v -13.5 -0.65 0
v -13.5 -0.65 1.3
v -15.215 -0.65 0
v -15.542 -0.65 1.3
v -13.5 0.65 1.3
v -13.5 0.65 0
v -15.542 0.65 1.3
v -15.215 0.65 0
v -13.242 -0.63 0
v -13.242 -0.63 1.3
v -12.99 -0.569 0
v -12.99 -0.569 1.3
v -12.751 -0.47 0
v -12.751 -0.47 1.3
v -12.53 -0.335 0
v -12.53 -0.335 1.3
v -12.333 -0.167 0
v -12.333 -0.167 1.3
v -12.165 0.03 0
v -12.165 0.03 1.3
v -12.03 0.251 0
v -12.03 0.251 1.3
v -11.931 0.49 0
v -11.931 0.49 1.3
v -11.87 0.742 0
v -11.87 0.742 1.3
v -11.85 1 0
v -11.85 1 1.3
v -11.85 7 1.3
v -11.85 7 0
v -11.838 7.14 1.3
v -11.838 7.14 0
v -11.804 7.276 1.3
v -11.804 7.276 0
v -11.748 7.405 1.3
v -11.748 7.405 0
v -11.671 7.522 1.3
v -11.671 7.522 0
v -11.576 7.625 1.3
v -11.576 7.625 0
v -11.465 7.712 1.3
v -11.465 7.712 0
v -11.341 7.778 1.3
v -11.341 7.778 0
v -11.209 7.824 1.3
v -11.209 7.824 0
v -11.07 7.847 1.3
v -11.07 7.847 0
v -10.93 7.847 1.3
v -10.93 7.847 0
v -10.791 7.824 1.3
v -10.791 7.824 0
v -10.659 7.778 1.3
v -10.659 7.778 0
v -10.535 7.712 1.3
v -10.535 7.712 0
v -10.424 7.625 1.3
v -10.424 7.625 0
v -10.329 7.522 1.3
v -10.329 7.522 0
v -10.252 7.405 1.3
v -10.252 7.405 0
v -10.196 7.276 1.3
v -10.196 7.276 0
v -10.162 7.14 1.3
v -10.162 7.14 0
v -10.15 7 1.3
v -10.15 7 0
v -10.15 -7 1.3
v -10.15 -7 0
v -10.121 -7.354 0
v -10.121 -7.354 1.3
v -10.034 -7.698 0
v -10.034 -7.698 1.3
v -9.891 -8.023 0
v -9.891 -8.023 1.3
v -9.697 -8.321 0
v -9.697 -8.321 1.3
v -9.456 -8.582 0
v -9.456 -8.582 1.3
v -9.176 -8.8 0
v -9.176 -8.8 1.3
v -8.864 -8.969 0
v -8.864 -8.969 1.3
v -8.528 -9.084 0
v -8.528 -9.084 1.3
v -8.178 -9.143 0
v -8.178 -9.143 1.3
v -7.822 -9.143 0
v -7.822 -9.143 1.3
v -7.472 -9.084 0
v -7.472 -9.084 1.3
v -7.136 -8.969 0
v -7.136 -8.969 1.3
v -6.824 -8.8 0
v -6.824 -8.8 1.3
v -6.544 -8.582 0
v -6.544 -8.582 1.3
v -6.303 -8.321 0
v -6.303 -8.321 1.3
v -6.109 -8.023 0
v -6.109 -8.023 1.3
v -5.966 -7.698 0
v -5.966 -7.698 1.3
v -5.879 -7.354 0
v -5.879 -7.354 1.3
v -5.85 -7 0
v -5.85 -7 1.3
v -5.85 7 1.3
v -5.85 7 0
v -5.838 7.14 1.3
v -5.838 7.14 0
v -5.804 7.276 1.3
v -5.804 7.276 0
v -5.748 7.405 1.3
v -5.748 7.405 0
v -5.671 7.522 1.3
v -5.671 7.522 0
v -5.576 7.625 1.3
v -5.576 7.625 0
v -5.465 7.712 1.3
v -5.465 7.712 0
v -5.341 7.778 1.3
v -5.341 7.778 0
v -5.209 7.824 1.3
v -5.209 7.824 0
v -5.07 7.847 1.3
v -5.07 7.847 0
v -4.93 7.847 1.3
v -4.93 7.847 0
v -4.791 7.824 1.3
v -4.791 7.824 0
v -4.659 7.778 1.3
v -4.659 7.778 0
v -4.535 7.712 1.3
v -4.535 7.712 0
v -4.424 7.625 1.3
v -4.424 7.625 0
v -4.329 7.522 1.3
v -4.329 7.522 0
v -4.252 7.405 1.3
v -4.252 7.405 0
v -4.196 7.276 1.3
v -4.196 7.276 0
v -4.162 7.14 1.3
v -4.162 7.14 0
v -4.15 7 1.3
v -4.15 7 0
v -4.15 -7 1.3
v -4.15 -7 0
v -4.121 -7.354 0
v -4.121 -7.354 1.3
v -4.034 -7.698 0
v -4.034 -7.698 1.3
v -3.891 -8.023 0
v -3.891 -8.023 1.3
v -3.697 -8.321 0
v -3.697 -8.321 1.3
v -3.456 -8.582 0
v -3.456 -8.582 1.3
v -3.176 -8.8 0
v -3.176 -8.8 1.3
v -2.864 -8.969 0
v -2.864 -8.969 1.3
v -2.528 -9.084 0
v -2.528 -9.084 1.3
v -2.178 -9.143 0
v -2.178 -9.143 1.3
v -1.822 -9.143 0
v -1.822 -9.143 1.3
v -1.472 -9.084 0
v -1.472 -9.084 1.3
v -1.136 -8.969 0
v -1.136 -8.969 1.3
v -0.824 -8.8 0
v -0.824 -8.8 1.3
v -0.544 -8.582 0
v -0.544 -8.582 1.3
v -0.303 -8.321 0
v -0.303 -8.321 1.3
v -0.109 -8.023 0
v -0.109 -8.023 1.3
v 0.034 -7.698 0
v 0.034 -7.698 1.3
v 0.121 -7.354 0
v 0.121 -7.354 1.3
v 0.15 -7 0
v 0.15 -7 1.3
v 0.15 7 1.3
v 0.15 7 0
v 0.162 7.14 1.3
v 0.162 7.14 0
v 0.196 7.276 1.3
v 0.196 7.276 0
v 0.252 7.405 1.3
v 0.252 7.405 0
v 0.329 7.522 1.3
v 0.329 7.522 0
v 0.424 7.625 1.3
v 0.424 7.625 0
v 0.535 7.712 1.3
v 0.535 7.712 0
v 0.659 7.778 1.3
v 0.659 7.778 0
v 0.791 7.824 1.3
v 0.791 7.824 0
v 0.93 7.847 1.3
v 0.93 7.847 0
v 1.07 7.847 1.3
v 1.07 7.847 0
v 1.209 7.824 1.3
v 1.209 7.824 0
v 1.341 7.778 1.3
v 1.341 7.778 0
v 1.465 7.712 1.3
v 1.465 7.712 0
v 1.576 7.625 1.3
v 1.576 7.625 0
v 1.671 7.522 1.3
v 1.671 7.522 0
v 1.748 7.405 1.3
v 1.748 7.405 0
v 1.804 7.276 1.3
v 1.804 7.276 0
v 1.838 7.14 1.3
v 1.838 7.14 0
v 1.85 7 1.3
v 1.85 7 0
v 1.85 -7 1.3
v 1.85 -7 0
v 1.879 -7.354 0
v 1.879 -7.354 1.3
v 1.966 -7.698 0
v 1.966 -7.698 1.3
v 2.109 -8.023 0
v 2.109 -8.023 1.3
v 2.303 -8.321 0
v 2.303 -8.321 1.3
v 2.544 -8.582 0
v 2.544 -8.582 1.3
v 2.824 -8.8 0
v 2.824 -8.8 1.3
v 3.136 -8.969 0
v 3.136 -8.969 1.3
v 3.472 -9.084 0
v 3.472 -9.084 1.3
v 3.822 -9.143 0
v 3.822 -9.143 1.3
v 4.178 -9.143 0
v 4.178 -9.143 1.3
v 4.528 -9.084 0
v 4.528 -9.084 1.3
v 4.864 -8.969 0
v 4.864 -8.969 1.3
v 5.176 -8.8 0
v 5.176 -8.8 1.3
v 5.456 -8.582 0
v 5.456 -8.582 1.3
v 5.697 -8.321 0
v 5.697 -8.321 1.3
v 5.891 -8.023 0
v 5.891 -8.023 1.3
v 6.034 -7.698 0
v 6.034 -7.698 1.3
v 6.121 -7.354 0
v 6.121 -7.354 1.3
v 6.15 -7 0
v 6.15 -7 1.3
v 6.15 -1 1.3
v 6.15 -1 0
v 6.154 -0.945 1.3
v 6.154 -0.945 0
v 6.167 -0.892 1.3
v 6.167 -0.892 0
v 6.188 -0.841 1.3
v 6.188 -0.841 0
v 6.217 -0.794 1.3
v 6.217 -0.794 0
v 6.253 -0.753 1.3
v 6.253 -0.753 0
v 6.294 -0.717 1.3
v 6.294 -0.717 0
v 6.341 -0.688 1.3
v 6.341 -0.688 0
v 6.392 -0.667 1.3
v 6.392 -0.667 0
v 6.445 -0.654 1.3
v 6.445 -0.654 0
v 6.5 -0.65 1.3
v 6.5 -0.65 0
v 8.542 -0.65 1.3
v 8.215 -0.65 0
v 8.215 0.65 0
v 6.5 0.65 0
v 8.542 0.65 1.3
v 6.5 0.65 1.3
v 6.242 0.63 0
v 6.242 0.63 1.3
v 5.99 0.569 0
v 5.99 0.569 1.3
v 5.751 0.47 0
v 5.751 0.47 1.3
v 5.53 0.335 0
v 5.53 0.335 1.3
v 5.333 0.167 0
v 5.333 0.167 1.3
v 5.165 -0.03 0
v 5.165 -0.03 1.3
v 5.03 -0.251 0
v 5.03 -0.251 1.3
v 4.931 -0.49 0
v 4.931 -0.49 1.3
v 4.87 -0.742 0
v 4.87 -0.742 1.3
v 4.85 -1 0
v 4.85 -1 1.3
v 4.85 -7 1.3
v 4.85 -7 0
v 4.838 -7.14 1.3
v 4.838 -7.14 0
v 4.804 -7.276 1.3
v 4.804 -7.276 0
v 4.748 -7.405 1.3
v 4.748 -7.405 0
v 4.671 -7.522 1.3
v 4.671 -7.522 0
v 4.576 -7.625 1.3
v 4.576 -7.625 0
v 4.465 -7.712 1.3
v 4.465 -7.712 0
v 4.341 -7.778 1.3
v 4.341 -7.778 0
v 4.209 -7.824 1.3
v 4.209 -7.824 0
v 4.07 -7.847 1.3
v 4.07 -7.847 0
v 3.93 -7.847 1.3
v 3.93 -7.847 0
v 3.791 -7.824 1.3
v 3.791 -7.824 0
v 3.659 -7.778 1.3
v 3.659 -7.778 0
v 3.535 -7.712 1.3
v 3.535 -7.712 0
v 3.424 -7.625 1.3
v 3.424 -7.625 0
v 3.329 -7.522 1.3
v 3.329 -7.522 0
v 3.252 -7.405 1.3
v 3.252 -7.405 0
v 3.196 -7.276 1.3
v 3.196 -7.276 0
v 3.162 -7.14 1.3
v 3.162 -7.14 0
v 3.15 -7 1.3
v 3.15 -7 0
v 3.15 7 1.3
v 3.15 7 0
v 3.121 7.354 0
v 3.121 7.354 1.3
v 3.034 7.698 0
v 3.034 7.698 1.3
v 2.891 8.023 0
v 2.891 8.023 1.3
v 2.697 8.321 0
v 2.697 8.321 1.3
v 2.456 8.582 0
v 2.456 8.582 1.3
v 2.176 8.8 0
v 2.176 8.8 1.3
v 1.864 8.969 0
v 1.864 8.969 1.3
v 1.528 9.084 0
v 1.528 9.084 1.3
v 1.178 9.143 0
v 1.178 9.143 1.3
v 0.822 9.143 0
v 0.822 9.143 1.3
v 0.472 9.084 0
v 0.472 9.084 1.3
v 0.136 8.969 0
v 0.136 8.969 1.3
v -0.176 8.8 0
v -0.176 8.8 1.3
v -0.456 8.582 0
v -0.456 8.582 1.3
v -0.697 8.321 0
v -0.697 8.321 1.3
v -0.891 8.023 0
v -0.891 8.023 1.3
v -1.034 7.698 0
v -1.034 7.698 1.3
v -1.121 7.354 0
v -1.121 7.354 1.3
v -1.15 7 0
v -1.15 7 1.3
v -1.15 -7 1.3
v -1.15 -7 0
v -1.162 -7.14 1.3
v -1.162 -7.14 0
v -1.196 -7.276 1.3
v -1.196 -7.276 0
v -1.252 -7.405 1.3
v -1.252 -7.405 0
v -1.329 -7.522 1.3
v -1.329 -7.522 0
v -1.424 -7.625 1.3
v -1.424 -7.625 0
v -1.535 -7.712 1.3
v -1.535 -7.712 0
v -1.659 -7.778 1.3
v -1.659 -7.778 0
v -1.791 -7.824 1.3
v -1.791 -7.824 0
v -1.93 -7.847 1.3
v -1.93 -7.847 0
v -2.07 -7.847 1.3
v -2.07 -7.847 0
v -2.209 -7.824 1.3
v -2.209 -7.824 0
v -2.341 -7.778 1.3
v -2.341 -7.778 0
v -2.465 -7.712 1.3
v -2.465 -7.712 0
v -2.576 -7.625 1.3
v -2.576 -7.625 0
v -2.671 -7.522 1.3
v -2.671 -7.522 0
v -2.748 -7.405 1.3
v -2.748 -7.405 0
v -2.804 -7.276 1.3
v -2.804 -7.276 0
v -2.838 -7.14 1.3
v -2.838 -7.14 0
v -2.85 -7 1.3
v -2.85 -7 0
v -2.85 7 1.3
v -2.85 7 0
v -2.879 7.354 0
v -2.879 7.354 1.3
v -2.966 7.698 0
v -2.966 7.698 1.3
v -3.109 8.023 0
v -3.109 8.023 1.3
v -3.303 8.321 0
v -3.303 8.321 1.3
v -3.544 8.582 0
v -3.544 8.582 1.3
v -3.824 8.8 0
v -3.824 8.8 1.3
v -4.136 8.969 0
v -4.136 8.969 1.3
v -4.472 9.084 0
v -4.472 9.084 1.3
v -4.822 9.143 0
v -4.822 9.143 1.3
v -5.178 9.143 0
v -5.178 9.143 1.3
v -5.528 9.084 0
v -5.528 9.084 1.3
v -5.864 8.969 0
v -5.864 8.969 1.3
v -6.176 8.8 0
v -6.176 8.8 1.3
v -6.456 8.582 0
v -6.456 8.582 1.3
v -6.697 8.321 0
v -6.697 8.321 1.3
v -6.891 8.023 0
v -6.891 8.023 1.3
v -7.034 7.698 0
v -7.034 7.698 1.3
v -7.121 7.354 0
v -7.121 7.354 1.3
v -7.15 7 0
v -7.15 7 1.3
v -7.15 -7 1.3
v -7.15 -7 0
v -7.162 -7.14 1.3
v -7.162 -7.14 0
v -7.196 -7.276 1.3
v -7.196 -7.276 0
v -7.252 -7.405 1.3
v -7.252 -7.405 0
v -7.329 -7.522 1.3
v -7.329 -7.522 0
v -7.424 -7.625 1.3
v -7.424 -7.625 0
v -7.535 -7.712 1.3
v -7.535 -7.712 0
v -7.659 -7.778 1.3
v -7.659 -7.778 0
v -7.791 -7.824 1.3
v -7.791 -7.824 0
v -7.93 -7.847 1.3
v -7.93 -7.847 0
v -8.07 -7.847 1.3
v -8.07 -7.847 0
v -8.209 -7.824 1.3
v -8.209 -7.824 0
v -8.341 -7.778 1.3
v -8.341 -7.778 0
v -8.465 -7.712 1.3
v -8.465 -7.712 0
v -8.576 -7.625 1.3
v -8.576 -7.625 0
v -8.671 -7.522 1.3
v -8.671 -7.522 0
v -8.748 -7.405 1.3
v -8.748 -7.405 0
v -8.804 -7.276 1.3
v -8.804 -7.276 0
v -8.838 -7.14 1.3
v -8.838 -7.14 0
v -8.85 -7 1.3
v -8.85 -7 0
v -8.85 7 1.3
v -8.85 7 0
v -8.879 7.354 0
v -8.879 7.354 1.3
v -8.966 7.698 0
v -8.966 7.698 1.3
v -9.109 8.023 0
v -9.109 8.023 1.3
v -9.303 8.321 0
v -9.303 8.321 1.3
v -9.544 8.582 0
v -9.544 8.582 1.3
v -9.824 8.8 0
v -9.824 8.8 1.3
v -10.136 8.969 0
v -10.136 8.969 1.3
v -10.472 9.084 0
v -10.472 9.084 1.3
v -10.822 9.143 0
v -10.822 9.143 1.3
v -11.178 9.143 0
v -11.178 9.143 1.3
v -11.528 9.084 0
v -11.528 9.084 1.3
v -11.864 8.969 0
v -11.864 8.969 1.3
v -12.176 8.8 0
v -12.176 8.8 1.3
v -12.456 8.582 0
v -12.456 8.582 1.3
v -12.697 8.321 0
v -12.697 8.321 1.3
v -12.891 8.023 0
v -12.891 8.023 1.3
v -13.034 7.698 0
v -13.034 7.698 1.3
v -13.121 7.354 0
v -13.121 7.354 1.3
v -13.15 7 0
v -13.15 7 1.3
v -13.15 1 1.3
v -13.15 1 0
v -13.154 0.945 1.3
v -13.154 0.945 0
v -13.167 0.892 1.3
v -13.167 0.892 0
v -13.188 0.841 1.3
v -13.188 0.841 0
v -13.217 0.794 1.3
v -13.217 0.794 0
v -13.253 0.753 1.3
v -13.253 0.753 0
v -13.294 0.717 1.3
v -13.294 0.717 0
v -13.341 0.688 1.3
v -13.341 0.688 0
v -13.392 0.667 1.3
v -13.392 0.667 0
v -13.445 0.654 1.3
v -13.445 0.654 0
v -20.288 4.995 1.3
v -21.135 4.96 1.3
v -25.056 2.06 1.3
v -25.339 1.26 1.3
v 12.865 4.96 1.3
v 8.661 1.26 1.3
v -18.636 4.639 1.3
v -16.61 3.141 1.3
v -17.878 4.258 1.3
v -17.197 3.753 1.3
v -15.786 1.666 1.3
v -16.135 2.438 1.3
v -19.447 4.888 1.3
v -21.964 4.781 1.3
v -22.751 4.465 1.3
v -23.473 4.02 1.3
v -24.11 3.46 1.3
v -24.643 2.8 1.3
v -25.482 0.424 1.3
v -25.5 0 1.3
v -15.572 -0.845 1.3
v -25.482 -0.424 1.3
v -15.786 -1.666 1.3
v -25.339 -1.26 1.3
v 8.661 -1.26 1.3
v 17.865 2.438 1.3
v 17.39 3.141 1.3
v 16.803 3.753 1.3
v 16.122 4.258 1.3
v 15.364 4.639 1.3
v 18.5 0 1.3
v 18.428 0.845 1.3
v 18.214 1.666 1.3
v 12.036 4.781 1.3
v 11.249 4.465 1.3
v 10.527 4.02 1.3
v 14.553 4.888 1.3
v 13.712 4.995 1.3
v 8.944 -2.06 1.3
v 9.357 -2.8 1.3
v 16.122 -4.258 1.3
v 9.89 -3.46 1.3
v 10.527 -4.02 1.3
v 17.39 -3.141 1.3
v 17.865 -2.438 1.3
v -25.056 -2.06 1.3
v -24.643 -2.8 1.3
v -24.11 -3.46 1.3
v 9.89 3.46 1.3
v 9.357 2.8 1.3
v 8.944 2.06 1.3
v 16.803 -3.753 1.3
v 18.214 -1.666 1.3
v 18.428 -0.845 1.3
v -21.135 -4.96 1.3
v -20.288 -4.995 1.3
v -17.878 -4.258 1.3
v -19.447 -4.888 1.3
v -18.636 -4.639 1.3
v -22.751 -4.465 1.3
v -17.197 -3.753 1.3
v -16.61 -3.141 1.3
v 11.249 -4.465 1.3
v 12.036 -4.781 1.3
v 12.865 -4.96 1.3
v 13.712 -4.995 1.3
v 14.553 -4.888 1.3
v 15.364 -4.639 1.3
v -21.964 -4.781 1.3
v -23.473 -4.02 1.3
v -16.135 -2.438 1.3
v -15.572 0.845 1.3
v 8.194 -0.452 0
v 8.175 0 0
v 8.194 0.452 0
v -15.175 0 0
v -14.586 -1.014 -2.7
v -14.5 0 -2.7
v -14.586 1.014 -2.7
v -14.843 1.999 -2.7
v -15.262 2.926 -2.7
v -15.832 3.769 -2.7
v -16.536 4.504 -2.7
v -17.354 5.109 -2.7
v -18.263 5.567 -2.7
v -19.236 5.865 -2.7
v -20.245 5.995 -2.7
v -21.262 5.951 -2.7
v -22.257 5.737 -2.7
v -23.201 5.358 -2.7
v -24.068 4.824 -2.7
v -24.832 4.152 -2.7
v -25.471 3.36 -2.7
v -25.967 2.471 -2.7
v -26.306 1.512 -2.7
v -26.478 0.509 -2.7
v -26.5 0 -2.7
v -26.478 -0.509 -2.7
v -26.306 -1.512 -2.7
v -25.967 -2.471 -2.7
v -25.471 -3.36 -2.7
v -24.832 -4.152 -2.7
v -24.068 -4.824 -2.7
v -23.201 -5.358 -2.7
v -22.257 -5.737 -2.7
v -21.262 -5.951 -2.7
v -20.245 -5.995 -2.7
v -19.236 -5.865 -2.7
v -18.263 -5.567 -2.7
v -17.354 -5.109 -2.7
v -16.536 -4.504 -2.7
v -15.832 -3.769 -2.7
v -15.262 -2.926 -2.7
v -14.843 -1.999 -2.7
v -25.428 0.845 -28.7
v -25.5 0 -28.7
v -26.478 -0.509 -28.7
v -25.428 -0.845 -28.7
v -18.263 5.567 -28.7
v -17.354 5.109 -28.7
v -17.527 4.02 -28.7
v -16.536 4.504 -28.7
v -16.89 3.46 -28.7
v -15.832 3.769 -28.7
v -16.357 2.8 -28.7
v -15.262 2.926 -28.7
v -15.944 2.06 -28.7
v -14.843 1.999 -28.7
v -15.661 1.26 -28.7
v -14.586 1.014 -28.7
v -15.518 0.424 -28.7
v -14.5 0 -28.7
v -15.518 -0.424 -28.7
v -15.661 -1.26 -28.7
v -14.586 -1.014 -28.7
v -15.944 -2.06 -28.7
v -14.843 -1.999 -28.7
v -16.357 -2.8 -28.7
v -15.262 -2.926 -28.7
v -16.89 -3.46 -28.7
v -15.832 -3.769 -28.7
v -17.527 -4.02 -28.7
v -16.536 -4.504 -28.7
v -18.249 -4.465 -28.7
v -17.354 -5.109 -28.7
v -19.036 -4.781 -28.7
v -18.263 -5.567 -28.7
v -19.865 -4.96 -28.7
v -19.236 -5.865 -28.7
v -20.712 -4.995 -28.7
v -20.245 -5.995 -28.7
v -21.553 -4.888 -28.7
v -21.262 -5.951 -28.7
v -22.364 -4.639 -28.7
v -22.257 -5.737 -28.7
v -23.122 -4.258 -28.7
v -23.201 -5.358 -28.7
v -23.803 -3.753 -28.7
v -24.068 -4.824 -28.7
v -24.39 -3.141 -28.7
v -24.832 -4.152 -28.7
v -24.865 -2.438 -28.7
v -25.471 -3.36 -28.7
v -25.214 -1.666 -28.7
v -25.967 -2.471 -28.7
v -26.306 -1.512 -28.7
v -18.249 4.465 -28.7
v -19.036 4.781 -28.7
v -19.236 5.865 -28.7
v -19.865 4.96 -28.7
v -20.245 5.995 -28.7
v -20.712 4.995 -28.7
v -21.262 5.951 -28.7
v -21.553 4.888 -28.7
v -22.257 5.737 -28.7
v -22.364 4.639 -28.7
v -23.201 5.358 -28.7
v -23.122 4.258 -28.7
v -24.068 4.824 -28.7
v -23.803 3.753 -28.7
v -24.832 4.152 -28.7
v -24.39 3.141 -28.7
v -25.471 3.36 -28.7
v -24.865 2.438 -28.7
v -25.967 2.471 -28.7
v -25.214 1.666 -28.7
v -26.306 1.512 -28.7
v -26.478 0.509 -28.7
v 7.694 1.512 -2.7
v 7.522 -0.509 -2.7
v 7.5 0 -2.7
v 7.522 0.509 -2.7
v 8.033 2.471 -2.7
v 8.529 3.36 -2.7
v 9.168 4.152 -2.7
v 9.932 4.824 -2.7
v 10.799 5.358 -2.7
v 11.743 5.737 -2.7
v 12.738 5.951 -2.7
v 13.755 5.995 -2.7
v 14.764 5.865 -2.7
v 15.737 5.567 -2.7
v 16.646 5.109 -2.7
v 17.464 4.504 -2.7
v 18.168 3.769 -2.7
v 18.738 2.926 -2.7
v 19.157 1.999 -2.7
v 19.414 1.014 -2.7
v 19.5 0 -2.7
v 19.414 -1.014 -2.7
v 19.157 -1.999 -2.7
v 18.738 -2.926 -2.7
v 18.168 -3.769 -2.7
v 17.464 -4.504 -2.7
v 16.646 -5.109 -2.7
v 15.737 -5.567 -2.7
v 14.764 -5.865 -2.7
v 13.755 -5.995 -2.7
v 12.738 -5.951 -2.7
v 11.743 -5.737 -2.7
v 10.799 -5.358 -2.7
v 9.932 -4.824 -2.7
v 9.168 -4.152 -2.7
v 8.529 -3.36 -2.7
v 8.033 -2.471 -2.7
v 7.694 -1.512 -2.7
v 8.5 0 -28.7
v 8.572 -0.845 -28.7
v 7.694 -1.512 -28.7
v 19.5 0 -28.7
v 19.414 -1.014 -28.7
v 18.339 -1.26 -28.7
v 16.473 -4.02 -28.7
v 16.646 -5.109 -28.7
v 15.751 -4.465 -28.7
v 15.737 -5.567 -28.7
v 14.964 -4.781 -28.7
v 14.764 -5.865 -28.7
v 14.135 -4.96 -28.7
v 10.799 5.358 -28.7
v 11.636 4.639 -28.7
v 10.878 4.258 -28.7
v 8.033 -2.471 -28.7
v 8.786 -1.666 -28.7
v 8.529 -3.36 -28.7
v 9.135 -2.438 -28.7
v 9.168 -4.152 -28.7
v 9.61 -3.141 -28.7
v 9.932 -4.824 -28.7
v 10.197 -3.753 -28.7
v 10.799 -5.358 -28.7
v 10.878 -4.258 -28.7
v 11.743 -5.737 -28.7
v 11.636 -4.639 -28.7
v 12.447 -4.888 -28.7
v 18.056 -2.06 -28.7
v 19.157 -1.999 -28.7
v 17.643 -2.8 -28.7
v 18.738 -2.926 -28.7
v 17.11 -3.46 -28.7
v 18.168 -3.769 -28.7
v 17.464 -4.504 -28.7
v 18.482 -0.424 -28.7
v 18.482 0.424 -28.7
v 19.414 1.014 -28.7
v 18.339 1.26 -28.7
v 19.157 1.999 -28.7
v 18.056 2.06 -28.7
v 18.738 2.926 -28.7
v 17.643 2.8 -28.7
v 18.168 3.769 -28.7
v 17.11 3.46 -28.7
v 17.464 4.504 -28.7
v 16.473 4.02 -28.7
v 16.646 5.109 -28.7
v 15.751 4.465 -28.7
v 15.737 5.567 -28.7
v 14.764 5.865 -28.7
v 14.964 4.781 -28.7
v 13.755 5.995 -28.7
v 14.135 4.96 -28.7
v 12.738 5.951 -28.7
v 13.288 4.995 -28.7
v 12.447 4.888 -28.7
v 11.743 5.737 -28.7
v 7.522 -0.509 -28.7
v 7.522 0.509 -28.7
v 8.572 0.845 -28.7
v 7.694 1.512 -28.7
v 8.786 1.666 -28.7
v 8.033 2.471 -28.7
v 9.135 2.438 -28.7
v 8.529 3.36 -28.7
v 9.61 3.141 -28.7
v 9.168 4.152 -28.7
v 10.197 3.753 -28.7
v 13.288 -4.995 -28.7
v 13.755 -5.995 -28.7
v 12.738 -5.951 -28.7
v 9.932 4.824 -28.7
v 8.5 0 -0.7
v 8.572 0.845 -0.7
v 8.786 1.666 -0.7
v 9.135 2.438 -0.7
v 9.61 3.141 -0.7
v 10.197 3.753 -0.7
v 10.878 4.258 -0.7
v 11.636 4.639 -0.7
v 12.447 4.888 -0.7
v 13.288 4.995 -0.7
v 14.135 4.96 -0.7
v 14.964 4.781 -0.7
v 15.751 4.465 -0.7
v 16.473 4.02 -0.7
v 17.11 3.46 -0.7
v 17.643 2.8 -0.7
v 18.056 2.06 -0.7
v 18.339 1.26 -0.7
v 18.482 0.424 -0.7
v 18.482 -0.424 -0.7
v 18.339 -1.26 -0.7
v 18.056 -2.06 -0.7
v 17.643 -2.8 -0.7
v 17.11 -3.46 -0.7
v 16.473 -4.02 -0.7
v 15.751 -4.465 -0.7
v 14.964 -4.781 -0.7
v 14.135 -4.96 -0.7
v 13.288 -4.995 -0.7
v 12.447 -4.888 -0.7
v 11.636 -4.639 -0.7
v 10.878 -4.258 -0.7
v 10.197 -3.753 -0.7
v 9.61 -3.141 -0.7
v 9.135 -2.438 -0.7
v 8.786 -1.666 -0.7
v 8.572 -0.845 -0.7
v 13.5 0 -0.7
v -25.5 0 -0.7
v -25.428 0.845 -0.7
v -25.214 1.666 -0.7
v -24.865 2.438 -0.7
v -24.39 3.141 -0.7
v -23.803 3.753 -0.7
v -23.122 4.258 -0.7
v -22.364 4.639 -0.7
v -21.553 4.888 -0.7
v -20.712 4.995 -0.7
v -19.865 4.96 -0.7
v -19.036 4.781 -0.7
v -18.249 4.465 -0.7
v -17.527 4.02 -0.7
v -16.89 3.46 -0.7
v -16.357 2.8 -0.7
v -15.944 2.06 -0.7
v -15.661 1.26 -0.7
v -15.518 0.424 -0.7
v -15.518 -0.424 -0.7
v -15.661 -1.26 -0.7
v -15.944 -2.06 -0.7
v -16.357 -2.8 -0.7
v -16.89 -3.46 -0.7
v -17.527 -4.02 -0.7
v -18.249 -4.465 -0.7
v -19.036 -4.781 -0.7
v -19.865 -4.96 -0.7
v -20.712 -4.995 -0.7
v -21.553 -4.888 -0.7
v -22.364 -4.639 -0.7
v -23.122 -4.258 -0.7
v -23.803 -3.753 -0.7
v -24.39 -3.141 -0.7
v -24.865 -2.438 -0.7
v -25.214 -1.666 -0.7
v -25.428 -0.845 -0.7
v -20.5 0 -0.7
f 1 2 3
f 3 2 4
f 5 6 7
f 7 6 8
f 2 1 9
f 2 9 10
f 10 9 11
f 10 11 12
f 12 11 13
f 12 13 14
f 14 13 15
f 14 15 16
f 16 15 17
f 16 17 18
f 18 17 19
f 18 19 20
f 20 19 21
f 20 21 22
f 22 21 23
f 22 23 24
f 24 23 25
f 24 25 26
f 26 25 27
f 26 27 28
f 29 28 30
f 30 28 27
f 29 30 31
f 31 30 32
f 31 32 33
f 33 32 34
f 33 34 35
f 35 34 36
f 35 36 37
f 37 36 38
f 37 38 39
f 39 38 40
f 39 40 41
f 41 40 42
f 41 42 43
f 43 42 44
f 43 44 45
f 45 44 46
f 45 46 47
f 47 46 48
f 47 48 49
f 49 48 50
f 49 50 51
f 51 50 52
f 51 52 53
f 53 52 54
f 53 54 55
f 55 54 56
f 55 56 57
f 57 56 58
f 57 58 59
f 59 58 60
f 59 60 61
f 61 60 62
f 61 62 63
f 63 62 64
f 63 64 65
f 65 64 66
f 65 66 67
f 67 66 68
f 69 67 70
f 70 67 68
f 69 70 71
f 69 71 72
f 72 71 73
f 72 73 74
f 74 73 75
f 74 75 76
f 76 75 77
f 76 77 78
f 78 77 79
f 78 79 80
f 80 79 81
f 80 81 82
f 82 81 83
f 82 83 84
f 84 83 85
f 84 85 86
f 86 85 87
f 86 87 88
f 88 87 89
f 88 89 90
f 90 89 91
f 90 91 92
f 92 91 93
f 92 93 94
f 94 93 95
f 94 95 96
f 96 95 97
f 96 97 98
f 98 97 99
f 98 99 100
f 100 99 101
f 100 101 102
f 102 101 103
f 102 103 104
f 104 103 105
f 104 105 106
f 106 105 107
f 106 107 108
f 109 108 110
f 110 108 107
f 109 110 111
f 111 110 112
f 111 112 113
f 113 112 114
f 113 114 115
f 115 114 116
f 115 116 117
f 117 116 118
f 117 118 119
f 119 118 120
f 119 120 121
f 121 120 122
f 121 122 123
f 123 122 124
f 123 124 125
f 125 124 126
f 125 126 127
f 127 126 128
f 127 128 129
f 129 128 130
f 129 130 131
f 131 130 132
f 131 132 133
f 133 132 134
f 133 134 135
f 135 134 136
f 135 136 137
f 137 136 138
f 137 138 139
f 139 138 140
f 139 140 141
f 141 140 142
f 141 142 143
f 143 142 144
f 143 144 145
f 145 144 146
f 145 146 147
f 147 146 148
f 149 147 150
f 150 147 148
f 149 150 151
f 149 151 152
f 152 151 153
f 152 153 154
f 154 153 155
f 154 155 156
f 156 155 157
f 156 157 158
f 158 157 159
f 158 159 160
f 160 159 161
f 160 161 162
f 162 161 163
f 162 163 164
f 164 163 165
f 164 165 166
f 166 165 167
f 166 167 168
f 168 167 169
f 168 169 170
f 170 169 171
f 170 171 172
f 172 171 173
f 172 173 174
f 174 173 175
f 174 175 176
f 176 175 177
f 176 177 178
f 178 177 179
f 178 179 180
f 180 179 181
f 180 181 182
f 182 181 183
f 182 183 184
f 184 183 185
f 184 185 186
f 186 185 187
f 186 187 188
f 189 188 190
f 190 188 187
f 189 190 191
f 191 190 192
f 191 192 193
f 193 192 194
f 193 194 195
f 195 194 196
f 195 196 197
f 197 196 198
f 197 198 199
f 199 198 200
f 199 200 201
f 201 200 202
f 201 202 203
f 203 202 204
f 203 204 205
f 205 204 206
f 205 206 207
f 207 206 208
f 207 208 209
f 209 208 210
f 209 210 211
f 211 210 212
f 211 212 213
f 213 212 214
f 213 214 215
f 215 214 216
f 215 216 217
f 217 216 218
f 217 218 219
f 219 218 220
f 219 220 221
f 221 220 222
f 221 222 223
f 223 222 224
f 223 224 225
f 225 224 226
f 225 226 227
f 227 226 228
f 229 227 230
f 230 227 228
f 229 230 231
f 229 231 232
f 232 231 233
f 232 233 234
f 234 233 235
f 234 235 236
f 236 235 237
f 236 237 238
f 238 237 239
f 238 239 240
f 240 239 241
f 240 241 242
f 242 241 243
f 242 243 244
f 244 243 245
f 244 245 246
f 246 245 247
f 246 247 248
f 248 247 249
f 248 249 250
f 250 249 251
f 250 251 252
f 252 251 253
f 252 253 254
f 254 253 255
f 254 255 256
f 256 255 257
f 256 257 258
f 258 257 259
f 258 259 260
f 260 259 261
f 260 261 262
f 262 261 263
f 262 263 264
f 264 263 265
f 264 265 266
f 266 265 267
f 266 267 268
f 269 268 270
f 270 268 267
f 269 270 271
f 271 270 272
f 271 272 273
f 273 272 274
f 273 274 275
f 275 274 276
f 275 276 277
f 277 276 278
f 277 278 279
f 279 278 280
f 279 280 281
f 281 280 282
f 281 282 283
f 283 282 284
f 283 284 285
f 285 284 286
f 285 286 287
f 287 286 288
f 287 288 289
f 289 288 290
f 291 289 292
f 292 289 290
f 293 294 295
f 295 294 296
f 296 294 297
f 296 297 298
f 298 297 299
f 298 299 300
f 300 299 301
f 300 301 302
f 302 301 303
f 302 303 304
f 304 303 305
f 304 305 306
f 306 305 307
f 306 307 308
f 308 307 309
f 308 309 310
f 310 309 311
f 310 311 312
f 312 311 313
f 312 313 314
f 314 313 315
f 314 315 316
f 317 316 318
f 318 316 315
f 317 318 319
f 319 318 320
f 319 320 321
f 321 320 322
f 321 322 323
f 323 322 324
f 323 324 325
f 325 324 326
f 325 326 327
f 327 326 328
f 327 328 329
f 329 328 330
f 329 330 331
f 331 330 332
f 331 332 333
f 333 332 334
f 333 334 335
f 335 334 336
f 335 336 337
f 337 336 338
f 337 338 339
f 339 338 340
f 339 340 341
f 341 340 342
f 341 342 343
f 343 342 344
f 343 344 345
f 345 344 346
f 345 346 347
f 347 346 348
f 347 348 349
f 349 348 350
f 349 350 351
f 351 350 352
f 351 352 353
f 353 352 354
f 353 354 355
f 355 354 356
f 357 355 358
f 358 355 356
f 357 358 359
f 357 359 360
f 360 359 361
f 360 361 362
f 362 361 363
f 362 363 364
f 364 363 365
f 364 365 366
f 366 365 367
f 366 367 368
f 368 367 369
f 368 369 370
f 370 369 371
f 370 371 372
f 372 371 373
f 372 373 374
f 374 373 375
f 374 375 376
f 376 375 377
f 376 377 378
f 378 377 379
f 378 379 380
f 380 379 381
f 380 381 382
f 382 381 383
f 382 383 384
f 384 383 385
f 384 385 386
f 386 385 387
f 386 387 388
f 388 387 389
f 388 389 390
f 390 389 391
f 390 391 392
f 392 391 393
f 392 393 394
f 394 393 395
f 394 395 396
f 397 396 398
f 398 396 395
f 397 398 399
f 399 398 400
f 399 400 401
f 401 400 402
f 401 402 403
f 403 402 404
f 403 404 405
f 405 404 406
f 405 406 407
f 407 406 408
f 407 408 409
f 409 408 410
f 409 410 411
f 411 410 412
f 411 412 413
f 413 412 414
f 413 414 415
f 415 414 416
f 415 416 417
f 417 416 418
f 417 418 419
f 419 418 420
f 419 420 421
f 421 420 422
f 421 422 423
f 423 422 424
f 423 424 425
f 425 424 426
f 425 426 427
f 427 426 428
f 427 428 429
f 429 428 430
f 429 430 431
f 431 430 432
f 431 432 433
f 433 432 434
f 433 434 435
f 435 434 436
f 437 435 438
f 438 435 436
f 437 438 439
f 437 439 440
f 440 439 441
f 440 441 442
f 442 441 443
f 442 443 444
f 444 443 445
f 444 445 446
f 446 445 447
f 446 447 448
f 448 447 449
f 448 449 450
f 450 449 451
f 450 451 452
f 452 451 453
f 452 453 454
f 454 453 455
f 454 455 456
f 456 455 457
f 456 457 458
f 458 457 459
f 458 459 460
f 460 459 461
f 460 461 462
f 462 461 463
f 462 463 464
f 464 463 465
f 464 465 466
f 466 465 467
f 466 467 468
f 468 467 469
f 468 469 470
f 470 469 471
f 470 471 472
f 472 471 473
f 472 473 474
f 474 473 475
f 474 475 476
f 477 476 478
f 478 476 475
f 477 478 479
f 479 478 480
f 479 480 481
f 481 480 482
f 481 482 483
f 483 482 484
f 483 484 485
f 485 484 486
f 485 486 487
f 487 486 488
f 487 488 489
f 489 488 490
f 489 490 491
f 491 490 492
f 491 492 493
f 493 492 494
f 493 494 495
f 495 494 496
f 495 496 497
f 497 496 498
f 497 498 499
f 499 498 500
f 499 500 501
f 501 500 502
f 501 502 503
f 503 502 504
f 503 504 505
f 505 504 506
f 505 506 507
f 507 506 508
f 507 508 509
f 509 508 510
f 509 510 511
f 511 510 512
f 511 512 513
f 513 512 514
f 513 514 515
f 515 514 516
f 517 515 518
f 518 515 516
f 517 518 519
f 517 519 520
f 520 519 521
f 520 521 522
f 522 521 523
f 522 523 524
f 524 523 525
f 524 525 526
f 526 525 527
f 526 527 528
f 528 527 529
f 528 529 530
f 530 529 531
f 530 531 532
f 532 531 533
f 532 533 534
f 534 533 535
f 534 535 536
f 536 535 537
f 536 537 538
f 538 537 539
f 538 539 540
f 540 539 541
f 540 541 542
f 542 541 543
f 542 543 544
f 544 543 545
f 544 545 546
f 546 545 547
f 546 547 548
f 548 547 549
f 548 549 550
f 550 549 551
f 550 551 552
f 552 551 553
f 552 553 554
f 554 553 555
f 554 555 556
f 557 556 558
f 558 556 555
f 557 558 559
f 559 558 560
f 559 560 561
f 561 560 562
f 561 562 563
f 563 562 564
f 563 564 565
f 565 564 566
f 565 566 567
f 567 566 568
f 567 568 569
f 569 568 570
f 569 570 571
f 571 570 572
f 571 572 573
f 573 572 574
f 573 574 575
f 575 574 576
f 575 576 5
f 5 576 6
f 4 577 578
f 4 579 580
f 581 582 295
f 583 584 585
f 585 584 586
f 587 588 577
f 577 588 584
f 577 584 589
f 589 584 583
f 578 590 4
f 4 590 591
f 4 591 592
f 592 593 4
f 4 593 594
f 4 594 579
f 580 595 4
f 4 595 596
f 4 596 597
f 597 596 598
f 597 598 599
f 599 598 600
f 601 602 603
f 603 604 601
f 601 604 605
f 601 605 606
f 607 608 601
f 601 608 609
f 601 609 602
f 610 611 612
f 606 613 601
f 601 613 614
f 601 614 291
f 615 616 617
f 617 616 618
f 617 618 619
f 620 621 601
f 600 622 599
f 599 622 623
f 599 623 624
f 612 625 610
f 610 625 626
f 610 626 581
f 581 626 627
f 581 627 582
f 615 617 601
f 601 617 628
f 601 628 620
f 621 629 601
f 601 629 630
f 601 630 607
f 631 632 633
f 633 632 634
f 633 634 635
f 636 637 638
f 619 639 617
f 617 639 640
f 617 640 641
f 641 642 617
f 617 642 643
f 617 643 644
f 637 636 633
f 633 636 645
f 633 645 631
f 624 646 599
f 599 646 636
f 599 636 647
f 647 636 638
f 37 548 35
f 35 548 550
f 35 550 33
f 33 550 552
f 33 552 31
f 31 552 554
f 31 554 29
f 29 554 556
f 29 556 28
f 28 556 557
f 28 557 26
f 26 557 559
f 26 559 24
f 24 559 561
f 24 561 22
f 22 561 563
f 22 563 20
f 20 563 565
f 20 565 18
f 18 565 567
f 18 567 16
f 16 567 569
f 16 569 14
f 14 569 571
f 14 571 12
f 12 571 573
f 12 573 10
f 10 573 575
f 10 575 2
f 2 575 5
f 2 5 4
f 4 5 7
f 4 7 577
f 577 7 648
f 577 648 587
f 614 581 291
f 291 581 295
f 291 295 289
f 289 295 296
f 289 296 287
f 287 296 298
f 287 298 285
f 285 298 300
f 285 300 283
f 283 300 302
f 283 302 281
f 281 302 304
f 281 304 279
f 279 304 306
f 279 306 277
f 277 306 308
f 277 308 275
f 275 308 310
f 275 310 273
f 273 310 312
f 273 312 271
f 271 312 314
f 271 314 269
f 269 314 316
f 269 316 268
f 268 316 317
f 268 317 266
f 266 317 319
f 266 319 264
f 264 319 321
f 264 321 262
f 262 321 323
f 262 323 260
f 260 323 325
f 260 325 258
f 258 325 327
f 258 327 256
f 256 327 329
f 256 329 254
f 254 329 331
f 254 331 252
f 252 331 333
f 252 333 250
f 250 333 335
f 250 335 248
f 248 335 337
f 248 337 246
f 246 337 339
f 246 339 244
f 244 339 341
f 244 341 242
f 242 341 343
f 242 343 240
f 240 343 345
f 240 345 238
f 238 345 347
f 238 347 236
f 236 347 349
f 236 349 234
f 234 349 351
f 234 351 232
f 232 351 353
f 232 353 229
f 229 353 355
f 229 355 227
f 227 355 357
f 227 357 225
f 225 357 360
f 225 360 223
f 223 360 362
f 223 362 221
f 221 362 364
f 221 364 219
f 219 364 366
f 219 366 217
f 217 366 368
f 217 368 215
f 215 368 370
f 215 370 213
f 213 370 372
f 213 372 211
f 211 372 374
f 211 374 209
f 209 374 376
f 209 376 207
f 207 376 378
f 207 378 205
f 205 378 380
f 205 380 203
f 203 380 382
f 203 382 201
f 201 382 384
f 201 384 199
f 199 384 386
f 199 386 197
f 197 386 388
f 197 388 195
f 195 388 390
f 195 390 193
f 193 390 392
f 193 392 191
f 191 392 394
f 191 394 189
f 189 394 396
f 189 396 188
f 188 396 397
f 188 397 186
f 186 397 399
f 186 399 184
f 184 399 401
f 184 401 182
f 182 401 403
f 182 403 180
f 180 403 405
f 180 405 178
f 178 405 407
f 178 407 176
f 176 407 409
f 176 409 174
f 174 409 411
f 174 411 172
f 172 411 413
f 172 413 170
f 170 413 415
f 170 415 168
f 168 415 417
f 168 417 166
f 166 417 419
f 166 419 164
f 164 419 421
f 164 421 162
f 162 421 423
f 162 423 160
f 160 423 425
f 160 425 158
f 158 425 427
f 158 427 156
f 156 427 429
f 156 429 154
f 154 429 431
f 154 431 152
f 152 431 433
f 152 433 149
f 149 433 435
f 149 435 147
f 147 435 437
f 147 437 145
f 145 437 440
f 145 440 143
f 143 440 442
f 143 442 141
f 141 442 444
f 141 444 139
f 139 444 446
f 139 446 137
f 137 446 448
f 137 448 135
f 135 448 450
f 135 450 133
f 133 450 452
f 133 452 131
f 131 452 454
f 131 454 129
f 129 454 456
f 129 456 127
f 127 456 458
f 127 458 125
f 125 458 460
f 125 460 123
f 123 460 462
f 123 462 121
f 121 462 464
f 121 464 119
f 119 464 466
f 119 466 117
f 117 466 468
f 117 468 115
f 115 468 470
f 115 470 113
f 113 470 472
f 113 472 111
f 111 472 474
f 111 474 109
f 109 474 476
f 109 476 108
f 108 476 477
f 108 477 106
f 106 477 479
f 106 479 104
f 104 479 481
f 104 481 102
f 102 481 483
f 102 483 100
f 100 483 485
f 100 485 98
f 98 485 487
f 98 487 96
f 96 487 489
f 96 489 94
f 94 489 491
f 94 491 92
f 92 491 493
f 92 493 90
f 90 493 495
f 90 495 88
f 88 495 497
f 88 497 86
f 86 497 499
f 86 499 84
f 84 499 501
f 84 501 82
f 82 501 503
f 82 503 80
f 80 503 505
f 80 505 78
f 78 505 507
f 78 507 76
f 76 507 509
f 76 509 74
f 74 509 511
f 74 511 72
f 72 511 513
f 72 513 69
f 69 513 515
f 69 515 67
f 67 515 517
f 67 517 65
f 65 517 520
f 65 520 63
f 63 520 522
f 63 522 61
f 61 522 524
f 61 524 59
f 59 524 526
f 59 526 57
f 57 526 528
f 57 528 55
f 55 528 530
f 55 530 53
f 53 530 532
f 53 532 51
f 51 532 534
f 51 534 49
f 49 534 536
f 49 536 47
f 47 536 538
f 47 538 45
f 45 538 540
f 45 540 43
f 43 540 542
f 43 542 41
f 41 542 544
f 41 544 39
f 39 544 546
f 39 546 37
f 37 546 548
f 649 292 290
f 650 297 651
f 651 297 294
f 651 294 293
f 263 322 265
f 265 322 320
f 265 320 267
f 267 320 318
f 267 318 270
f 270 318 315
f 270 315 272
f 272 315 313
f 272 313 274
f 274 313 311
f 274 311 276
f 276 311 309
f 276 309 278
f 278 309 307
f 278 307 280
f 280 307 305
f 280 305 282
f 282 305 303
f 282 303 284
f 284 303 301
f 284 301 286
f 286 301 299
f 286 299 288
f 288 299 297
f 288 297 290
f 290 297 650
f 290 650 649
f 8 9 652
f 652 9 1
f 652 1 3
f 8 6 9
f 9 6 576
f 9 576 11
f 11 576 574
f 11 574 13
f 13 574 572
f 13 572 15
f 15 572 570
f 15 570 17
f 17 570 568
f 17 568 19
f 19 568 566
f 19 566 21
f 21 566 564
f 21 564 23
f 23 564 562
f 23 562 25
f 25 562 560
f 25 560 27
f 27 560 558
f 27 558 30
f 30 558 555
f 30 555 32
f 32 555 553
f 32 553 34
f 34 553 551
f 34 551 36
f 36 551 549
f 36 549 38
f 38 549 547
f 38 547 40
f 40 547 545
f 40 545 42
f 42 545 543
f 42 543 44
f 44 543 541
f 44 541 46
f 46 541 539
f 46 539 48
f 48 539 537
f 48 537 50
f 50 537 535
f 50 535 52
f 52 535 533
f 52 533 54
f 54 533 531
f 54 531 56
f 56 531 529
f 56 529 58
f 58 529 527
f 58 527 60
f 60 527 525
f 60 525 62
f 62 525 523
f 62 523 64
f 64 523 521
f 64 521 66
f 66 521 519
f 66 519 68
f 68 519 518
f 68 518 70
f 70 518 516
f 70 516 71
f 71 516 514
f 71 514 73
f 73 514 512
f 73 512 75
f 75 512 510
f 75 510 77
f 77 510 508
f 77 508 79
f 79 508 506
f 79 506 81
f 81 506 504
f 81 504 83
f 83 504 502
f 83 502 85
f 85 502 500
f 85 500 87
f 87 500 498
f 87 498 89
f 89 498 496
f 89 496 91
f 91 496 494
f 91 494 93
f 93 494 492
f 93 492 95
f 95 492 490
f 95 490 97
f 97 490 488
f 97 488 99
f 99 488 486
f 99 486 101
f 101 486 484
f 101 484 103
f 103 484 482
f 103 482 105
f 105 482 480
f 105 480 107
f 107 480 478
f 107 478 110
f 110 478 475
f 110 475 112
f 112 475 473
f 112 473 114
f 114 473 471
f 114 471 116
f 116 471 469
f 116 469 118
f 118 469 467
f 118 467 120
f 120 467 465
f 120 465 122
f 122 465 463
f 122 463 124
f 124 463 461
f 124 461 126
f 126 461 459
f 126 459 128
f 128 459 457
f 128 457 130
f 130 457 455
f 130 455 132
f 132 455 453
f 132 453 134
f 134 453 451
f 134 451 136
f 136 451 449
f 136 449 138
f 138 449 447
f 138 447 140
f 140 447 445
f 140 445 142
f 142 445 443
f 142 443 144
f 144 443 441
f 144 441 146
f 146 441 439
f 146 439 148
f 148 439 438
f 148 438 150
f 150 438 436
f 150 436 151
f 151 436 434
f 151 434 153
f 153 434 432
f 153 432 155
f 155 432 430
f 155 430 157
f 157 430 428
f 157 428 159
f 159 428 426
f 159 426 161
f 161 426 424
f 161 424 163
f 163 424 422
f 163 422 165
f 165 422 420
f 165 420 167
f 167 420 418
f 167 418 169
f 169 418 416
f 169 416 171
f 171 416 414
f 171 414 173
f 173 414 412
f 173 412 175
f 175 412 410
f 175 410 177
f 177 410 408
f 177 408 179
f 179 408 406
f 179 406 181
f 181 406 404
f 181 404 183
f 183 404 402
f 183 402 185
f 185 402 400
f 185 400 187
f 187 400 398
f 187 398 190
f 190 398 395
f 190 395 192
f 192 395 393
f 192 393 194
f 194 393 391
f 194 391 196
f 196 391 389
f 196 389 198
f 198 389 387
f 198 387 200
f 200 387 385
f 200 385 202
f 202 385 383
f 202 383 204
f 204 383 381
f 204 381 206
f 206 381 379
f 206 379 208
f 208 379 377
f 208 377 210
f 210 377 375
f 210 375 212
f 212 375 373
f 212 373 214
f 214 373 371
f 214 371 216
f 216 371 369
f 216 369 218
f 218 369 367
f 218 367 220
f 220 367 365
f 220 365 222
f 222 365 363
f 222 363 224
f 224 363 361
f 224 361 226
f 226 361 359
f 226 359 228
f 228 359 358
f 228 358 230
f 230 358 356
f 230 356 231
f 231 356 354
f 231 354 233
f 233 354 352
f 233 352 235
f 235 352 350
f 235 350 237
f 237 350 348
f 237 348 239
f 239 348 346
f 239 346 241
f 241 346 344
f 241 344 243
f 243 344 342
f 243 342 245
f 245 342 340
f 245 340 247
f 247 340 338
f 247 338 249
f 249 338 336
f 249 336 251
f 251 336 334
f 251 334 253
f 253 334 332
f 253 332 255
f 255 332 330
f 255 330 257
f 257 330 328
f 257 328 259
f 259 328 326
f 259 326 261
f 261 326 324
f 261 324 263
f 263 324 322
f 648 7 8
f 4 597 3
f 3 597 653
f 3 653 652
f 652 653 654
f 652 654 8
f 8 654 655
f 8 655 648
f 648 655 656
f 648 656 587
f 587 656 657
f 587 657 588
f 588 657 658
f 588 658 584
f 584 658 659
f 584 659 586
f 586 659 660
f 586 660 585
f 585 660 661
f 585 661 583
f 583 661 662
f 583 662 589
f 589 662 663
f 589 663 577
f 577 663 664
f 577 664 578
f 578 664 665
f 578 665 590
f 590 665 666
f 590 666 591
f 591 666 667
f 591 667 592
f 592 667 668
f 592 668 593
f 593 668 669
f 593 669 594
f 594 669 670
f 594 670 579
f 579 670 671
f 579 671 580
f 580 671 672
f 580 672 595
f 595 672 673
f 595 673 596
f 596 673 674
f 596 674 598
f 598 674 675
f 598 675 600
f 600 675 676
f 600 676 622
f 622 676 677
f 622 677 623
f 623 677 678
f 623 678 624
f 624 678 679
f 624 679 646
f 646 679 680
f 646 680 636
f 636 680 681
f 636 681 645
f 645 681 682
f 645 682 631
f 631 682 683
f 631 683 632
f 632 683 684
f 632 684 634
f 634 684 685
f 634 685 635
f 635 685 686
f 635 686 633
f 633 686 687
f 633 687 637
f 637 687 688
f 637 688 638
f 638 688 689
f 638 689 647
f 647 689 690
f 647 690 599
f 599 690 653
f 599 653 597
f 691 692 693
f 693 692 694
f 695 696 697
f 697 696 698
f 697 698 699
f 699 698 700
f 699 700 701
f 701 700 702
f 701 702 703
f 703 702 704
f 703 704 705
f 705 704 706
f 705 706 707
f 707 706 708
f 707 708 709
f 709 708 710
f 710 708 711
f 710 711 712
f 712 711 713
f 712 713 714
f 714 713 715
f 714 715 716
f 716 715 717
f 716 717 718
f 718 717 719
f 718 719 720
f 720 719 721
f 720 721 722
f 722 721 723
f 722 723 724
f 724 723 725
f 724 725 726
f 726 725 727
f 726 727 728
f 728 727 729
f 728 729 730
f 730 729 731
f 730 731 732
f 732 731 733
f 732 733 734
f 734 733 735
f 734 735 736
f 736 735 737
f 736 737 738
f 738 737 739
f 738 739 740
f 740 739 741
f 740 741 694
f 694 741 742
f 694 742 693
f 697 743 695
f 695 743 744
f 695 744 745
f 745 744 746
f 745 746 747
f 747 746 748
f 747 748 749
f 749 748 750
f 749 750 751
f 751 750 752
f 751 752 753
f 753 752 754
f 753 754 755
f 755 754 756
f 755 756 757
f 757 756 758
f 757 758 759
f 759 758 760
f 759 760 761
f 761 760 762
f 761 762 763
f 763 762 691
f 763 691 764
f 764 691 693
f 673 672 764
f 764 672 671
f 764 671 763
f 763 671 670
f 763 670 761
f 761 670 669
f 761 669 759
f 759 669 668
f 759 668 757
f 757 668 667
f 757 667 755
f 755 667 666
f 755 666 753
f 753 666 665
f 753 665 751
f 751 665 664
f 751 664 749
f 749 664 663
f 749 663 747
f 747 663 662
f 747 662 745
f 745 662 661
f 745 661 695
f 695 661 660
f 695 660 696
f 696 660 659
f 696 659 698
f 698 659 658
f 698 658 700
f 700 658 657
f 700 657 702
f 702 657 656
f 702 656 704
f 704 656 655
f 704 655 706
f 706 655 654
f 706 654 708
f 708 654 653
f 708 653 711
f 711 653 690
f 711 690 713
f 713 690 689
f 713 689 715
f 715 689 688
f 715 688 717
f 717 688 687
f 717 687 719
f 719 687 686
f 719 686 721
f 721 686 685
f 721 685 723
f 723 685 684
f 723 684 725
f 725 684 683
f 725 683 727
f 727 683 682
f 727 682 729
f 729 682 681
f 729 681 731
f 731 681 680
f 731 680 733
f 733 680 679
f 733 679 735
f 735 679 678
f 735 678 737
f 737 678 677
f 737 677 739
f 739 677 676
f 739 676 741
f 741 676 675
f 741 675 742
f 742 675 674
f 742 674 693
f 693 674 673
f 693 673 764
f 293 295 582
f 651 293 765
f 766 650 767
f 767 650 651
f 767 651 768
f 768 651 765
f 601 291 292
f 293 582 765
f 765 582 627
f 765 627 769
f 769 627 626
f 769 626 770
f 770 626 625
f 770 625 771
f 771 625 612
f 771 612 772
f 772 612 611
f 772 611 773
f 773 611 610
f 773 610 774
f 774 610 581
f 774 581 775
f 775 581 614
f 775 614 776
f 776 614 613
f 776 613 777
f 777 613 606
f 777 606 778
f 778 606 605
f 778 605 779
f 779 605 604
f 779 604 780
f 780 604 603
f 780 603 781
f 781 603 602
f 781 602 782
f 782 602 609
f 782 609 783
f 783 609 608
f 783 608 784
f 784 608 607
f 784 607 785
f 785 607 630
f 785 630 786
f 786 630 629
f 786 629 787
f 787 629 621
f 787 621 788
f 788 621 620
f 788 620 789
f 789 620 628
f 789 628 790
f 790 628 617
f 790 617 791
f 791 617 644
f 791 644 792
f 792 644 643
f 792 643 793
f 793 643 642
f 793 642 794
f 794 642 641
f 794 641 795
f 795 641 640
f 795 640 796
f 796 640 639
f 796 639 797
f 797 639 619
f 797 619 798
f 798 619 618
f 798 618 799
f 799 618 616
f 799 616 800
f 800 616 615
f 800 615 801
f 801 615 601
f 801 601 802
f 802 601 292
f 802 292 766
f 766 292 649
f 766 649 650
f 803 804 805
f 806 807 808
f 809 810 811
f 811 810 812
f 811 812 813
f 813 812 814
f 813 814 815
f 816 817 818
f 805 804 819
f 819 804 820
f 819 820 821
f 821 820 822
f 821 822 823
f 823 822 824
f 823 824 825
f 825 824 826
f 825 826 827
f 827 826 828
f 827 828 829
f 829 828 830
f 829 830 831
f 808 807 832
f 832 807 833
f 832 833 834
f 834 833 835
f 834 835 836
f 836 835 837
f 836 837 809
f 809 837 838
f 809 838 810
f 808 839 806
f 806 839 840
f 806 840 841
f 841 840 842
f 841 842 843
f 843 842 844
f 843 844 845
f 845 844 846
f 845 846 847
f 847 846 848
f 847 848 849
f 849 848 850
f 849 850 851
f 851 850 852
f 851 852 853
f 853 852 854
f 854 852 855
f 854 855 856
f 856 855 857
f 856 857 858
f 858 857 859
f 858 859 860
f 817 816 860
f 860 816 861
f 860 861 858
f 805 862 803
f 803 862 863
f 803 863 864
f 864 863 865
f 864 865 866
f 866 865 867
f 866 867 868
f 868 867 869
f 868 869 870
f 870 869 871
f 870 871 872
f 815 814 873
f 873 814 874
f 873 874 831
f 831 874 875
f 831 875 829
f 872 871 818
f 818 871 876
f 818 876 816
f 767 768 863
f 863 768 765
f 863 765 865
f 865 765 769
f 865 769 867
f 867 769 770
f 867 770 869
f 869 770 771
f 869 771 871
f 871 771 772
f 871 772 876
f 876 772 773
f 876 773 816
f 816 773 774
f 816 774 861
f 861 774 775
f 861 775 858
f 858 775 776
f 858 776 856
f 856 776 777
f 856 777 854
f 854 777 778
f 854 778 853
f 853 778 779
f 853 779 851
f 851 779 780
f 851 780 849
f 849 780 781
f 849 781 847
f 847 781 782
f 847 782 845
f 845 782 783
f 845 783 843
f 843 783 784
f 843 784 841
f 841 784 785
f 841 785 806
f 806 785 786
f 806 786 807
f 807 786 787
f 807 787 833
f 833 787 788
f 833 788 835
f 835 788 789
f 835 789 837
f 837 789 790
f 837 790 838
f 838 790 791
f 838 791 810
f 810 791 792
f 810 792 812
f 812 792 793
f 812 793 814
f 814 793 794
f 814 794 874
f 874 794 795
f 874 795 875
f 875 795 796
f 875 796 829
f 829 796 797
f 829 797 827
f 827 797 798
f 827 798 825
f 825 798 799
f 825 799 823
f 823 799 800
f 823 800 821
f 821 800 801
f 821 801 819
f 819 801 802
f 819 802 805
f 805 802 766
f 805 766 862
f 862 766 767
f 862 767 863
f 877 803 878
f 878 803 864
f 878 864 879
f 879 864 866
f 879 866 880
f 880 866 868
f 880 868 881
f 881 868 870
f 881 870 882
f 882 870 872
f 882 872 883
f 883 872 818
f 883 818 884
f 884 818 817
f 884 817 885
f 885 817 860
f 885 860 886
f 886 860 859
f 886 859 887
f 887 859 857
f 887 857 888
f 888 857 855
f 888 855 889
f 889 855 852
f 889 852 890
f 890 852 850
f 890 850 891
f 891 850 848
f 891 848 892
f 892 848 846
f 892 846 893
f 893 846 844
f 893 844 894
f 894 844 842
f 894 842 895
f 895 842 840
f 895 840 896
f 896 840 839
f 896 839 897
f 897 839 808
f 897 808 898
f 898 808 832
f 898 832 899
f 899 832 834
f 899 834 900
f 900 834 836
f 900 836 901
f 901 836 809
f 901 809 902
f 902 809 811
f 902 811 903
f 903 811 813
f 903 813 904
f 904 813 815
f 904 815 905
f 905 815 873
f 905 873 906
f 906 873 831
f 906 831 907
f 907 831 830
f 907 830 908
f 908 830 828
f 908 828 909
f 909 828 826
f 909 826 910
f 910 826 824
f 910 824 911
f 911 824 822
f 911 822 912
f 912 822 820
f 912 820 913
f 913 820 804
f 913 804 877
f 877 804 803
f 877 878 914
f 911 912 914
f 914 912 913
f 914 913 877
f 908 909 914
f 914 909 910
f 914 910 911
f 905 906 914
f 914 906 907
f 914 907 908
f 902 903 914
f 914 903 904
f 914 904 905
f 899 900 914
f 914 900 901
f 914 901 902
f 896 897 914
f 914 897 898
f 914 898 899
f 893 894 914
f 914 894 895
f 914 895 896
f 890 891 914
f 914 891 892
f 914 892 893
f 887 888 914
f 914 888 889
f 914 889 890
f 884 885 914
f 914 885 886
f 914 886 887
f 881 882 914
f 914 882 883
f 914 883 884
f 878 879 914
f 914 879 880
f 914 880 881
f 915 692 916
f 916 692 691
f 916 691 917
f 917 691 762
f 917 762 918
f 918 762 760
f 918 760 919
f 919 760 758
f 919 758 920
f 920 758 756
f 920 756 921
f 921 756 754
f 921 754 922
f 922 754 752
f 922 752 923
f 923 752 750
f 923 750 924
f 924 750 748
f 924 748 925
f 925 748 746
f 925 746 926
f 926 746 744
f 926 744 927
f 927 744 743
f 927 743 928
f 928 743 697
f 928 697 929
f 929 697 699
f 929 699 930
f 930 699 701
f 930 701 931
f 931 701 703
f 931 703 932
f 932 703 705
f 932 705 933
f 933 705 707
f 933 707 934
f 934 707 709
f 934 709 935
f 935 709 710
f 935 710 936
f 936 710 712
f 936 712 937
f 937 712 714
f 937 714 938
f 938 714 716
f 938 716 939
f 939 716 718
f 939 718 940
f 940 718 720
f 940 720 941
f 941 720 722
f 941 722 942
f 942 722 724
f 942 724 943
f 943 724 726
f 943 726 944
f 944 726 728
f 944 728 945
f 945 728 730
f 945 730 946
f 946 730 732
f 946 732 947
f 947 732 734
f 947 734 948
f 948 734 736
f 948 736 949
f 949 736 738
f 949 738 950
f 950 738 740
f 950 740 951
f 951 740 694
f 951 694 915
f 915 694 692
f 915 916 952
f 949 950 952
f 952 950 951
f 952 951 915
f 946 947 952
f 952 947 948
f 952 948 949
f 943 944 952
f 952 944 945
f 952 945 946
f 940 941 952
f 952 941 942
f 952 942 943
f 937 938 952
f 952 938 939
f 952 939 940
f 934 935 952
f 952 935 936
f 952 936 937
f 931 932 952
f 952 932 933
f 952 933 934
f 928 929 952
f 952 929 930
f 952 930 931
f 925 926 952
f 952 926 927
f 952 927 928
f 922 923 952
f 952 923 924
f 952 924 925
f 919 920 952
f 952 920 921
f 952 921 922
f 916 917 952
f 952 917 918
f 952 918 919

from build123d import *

# Parameters (mm, degrees)
BOSS_EXTRUDE1_DEPTH = 1.3
SKETCH5_R           = 5
CUT_EXTRUDE1_DEPTH  = 28


with BuildPart() as part:
    # Sketch2 → Boss-Extrude1 (new body)
    with BuildSketch(Plane.XY):
        with BuildLine():
            Line((-20.5, -0.65), (-13.5, -0.65))
            ThreePointArc((-13.5, -0.65), (-12.333273811, -0.166726189), (-11.85, 1))
            Line((-11.85, 1), (-11.85, 7))
            ThreePointArc((-11.85, 7), (-11, 7.85), (-10.15, 7))
            Line((-10.15, 7), (-10.15, 0))
            Line((-10.15, 0), (-10.15, -7))
            ThreePointArc((-10.15, -7), (-8, -9.15), (-5.85, -7))
            Line((-5.85, -7), (-5.85, 0))
            Line((-5.85, 0), (-5.85, 7))
            ThreePointArc((-5.85, 7), (-5, 7.85), (-4.15, 7))
            Line((-4.15, 7), (-4.15, 0))
            Line((-4.15, 0), (-4.15, -7))
            ThreePointArc((-4.15, -7), (-2, -9.15), (0.15, -7))
            Line((0.15, -7), (0.15, 0))
            Line((0.15, 0), (0.15, 7))
            ThreePointArc((0.15, 7), (1, 7.85), (1.85, 7))
            Line((1.85, 7), (1.85, 0))
            Line((1.85, 0), (1.85, -7))
            ThreePointArc((1.85, -7), (4, -9.15), (6.15, -7))
            Line((6.15, -7), (6.15, -1))
            ThreePointArc((6.15, -1), (6.252512627, -0.752512627), (6.5, -0.65))
            Line((6.5, -0.65), (13.5, -0.65))
            ThreePointArc((13.5, -0.65), (14.15, 0), (13.5, 0.65))
            Line((13.5, 0.65), (6.5, 0.65))
            ThreePointArc((6.5, 0.65), (5.333273811, 0.166726189), (4.85, -1))
            Line((4.85, -1), (4.85, -7))
            ThreePointArc((4.85, -7), (4, -7.85), (3.15, -7))
            Line((3.15, -7), (3.15, 0))
            Line((3.15, 0), (3.15, 7))
            ThreePointArc((3.15, 7), (1, 9.15), (-1.15, 7))
            Line((-1.15, 7), (-1.15, 0))
            Line((-1.15, 0), (-1.15, -7))
            ThreePointArc((-1.15, -7), (-2, -7.85), (-2.85, -7))
            Line((-2.85, -7), (-2.85, 0))
            Line((-2.85, 0), (-2.85, 7))
            ThreePointArc((-2.85, 7), (-5, 9.15), (-7.15, 7))
            Line((-7.15, 7), (-7.15, 0))
            Line((-7.15, 0), (-7.15, -7))
            ThreePointArc((-7.15, -7), (-8, -7.85), (-8.85, -7))
            Line((-8.85, -7), (-8.85, 0))
            Line((-8.85, 0), (-8.85, 7))
            ThreePointArc((-8.85, 7), (-11, 9.15), (-13.15, 7))
            Line((-13.15, 7), (-13.15, 1))
            ThreePointArc((-13.15, 1), (-13.252512627, 0.752512627), (-13.5, 0.65))
            Line((-13.5, 0.65), (-20.5, 0.65))
            ThreePointArc((-20.5, 0.65), (-21.15, 0), (-20.5, -0.65))
        make_face()
    extrude(amount=BOSS_EXTRUDE1_DEPTH)

    # Sketch3 → Revolve1 (revolve)
    with BuildSketch(Plane(origin=(0, 0, 0), x_dir=(1, 0, 0), z_dir=(0, 1, 0)), mode=Mode.PRIVATE) as revolve1_sk:
        Polygon((-20.5, -1.3), (-25.5, -1.3), (-26.5, 2.7), (-26.5, 28.7), (-20.5, 28.7), align=None)
    revolve(revolve1_sk.sketch.rotate(Axis((-20.5, 0, 1.3), (0, 0, -1)), 187.469592391), axis=Axis((-20.5, 0, 1.3), (0, 0, -1)))

    # Sketch4 → Revolve2 (revolve)
    with BuildSketch(Plane(origin=(0, 0, 0), x_dir=(1, 0, 0), z_dir=(0, 1, 0)), mode=Mode.PRIVATE) as revolve2_sk:
        Polygon((13.5, -1.3), (18.5, -1.3), (19.5, 2.7), (19.5, 28.7), (13.5, 28.7), align=None)
    revolve(revolve2_sk.sketch.rotate(Axis((13.5, 0, 1.3), (0, 0, -1)), 172.988663576), axis=Axis((13.5, 0, 1.3), (0, 0, -1)))

    # Sketch5 → Cut-Extrude1 (cut)
    with BuildSketch(Plane(origin=(0, 0, -28.7), x_dir=(-1, 0, 0), z_dir=(0, 0, -1))):
        with Locations((20.5, 0)):
            Circle(SKETCH5_R)
        with Locations((-13.5, 0)):
            Circle(SKETCH5_R)
    extrude(amount=-CUT_EXTRUDE1_DEPTH, mode=Mode.SUBTRACT)


solid = part.part
